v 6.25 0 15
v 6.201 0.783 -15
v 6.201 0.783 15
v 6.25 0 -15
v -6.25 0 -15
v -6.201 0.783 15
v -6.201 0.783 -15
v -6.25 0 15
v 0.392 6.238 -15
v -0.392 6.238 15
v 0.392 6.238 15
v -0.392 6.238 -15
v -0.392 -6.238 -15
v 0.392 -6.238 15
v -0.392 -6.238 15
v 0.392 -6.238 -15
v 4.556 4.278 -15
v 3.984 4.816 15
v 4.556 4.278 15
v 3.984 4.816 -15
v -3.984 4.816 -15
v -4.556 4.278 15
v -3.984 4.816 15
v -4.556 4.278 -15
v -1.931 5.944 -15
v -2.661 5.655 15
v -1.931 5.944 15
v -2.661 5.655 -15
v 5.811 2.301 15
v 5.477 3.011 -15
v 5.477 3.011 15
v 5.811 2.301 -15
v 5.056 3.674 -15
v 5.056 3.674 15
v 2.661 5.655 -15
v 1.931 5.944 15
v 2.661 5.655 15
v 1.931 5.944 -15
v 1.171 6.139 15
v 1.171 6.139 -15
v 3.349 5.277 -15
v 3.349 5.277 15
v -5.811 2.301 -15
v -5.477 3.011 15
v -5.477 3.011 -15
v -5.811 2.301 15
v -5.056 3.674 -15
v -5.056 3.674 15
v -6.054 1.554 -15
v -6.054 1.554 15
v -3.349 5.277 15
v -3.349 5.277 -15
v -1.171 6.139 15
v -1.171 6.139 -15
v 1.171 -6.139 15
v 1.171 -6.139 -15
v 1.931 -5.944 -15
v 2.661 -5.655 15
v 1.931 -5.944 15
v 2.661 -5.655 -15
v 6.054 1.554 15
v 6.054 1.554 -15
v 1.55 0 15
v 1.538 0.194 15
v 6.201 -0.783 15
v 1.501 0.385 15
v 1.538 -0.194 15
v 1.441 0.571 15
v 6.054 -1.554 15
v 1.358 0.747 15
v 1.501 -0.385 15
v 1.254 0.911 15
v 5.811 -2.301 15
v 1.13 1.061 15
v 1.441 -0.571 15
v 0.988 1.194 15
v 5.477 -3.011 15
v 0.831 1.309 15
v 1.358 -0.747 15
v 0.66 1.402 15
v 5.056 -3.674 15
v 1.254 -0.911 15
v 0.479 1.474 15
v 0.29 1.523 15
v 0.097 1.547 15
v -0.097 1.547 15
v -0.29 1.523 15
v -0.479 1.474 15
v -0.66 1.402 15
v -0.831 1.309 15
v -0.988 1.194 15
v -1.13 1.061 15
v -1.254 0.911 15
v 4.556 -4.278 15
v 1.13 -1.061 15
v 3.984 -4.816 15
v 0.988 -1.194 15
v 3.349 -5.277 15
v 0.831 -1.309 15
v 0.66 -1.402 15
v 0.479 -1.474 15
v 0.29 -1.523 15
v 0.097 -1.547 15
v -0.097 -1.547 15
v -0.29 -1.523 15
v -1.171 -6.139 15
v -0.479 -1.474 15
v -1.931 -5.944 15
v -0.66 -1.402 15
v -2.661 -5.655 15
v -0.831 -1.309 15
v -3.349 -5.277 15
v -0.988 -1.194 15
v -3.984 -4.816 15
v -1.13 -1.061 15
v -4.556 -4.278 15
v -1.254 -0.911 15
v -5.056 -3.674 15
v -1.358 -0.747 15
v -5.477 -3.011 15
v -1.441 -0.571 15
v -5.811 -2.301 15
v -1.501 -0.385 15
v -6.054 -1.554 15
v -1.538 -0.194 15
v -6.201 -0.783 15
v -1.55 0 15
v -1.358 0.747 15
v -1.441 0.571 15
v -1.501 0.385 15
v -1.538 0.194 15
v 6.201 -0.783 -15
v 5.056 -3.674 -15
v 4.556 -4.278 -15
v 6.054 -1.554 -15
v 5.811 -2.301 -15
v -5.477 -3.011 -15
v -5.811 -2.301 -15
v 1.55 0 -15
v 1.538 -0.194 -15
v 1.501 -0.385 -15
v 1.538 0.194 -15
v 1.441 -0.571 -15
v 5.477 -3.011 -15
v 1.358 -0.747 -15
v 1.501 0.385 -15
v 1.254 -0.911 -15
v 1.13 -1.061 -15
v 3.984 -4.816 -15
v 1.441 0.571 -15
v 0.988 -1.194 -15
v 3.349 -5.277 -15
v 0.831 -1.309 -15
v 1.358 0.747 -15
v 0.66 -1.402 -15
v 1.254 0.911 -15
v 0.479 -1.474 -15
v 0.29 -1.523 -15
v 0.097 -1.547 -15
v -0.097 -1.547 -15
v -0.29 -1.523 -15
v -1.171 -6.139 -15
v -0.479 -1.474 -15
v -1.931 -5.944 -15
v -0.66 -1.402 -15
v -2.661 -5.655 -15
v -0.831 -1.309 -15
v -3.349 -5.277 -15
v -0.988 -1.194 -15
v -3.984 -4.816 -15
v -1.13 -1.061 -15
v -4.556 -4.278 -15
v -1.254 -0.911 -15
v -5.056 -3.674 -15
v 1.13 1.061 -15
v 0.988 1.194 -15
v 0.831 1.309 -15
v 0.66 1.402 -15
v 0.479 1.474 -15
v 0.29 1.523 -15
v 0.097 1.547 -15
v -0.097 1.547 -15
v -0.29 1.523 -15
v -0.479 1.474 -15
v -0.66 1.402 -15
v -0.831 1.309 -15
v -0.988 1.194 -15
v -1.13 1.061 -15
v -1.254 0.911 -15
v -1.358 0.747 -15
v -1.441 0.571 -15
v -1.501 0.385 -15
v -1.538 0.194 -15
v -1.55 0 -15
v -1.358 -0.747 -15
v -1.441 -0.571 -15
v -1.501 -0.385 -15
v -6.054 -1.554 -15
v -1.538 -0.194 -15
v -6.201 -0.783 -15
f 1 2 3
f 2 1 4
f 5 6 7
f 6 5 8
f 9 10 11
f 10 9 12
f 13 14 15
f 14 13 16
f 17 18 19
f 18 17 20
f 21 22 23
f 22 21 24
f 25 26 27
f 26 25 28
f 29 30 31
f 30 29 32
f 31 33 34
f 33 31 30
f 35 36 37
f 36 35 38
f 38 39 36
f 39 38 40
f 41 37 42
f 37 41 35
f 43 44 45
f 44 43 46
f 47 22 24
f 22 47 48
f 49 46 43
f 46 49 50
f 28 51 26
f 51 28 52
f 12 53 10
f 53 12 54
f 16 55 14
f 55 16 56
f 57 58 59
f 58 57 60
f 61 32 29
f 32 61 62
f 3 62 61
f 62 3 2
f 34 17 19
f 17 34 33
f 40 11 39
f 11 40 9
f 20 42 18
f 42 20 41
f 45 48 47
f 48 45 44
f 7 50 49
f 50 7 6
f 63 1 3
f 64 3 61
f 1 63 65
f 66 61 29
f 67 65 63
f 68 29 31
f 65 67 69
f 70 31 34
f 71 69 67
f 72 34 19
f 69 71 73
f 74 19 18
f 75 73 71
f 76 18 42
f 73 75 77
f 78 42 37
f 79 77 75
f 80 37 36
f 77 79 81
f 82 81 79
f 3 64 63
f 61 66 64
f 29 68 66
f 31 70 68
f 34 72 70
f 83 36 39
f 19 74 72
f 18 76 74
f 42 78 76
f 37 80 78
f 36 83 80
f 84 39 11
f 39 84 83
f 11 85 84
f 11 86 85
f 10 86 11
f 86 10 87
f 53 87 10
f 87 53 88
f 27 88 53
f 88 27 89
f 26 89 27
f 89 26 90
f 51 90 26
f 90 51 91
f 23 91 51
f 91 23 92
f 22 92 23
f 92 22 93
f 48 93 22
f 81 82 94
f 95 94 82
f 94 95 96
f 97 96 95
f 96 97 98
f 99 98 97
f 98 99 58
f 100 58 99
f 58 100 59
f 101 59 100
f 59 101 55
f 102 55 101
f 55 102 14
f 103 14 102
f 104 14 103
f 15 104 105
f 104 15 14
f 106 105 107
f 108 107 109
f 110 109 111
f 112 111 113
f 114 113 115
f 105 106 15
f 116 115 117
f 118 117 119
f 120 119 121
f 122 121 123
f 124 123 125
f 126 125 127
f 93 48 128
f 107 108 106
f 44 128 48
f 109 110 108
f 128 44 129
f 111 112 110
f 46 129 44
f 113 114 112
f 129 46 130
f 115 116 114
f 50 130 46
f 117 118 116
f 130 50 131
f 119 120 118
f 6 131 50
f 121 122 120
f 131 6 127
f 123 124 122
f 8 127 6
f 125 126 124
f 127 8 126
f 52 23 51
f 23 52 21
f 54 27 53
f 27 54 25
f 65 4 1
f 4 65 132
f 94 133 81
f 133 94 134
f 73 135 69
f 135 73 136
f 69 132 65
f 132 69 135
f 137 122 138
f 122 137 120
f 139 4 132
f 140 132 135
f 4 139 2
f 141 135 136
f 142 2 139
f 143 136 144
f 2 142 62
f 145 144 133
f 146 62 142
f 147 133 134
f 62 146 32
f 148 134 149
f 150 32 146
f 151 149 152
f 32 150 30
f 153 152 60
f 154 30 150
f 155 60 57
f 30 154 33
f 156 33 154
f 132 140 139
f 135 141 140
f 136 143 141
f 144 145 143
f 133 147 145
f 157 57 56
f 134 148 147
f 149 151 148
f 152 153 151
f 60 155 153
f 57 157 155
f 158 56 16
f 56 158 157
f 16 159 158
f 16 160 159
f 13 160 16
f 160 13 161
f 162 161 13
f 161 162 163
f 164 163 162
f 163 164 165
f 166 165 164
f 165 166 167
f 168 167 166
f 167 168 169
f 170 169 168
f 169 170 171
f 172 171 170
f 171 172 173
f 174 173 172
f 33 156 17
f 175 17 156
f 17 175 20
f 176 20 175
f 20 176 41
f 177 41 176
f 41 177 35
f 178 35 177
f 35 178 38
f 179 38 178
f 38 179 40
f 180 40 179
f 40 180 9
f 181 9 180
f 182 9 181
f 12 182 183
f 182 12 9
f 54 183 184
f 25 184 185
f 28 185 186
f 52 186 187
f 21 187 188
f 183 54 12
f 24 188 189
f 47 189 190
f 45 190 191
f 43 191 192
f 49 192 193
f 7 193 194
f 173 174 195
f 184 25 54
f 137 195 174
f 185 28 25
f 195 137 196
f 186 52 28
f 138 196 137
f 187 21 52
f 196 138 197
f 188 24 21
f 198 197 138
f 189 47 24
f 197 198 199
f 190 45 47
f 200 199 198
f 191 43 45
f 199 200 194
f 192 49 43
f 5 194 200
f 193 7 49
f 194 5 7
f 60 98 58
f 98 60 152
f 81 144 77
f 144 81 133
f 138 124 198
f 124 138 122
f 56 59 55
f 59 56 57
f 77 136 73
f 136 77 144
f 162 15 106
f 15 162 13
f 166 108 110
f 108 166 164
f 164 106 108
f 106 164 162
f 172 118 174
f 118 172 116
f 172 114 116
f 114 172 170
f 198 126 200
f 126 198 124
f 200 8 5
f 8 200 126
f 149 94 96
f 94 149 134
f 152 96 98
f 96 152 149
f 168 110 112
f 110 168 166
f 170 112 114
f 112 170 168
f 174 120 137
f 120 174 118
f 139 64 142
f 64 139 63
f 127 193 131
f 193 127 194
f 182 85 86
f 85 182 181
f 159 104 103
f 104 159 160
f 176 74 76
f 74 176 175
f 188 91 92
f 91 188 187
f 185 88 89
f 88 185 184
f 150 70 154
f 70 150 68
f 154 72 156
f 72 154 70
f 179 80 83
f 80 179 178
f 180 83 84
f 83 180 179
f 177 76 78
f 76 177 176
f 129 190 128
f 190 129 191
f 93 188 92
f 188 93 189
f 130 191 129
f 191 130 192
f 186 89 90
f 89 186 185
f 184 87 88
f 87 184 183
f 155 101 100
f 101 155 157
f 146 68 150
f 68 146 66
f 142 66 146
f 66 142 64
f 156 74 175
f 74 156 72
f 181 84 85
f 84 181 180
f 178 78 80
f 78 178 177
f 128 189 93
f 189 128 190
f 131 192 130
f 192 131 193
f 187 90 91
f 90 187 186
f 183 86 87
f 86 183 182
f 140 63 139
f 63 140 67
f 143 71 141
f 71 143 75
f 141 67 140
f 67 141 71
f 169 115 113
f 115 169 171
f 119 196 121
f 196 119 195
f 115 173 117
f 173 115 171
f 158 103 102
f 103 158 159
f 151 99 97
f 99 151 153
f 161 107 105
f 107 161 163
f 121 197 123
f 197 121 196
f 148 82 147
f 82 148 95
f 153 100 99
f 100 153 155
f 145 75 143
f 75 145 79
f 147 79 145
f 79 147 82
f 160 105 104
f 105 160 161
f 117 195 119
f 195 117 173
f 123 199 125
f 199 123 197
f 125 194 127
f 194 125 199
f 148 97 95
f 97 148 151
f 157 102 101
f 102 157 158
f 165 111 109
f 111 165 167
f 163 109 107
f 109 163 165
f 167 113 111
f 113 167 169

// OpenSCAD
$fn = 50;


difference() {
	union() {
		translate(v = [0, 0, -15.0000000000]) {
			cylinder(h = 30, r = 6.2500000000);
		}
	}
	union() {
		translate(v = [0, 0, -100.0000000000]) {
			cylinder(h = 200, r = 1.5500000000);
		}
	}
}
